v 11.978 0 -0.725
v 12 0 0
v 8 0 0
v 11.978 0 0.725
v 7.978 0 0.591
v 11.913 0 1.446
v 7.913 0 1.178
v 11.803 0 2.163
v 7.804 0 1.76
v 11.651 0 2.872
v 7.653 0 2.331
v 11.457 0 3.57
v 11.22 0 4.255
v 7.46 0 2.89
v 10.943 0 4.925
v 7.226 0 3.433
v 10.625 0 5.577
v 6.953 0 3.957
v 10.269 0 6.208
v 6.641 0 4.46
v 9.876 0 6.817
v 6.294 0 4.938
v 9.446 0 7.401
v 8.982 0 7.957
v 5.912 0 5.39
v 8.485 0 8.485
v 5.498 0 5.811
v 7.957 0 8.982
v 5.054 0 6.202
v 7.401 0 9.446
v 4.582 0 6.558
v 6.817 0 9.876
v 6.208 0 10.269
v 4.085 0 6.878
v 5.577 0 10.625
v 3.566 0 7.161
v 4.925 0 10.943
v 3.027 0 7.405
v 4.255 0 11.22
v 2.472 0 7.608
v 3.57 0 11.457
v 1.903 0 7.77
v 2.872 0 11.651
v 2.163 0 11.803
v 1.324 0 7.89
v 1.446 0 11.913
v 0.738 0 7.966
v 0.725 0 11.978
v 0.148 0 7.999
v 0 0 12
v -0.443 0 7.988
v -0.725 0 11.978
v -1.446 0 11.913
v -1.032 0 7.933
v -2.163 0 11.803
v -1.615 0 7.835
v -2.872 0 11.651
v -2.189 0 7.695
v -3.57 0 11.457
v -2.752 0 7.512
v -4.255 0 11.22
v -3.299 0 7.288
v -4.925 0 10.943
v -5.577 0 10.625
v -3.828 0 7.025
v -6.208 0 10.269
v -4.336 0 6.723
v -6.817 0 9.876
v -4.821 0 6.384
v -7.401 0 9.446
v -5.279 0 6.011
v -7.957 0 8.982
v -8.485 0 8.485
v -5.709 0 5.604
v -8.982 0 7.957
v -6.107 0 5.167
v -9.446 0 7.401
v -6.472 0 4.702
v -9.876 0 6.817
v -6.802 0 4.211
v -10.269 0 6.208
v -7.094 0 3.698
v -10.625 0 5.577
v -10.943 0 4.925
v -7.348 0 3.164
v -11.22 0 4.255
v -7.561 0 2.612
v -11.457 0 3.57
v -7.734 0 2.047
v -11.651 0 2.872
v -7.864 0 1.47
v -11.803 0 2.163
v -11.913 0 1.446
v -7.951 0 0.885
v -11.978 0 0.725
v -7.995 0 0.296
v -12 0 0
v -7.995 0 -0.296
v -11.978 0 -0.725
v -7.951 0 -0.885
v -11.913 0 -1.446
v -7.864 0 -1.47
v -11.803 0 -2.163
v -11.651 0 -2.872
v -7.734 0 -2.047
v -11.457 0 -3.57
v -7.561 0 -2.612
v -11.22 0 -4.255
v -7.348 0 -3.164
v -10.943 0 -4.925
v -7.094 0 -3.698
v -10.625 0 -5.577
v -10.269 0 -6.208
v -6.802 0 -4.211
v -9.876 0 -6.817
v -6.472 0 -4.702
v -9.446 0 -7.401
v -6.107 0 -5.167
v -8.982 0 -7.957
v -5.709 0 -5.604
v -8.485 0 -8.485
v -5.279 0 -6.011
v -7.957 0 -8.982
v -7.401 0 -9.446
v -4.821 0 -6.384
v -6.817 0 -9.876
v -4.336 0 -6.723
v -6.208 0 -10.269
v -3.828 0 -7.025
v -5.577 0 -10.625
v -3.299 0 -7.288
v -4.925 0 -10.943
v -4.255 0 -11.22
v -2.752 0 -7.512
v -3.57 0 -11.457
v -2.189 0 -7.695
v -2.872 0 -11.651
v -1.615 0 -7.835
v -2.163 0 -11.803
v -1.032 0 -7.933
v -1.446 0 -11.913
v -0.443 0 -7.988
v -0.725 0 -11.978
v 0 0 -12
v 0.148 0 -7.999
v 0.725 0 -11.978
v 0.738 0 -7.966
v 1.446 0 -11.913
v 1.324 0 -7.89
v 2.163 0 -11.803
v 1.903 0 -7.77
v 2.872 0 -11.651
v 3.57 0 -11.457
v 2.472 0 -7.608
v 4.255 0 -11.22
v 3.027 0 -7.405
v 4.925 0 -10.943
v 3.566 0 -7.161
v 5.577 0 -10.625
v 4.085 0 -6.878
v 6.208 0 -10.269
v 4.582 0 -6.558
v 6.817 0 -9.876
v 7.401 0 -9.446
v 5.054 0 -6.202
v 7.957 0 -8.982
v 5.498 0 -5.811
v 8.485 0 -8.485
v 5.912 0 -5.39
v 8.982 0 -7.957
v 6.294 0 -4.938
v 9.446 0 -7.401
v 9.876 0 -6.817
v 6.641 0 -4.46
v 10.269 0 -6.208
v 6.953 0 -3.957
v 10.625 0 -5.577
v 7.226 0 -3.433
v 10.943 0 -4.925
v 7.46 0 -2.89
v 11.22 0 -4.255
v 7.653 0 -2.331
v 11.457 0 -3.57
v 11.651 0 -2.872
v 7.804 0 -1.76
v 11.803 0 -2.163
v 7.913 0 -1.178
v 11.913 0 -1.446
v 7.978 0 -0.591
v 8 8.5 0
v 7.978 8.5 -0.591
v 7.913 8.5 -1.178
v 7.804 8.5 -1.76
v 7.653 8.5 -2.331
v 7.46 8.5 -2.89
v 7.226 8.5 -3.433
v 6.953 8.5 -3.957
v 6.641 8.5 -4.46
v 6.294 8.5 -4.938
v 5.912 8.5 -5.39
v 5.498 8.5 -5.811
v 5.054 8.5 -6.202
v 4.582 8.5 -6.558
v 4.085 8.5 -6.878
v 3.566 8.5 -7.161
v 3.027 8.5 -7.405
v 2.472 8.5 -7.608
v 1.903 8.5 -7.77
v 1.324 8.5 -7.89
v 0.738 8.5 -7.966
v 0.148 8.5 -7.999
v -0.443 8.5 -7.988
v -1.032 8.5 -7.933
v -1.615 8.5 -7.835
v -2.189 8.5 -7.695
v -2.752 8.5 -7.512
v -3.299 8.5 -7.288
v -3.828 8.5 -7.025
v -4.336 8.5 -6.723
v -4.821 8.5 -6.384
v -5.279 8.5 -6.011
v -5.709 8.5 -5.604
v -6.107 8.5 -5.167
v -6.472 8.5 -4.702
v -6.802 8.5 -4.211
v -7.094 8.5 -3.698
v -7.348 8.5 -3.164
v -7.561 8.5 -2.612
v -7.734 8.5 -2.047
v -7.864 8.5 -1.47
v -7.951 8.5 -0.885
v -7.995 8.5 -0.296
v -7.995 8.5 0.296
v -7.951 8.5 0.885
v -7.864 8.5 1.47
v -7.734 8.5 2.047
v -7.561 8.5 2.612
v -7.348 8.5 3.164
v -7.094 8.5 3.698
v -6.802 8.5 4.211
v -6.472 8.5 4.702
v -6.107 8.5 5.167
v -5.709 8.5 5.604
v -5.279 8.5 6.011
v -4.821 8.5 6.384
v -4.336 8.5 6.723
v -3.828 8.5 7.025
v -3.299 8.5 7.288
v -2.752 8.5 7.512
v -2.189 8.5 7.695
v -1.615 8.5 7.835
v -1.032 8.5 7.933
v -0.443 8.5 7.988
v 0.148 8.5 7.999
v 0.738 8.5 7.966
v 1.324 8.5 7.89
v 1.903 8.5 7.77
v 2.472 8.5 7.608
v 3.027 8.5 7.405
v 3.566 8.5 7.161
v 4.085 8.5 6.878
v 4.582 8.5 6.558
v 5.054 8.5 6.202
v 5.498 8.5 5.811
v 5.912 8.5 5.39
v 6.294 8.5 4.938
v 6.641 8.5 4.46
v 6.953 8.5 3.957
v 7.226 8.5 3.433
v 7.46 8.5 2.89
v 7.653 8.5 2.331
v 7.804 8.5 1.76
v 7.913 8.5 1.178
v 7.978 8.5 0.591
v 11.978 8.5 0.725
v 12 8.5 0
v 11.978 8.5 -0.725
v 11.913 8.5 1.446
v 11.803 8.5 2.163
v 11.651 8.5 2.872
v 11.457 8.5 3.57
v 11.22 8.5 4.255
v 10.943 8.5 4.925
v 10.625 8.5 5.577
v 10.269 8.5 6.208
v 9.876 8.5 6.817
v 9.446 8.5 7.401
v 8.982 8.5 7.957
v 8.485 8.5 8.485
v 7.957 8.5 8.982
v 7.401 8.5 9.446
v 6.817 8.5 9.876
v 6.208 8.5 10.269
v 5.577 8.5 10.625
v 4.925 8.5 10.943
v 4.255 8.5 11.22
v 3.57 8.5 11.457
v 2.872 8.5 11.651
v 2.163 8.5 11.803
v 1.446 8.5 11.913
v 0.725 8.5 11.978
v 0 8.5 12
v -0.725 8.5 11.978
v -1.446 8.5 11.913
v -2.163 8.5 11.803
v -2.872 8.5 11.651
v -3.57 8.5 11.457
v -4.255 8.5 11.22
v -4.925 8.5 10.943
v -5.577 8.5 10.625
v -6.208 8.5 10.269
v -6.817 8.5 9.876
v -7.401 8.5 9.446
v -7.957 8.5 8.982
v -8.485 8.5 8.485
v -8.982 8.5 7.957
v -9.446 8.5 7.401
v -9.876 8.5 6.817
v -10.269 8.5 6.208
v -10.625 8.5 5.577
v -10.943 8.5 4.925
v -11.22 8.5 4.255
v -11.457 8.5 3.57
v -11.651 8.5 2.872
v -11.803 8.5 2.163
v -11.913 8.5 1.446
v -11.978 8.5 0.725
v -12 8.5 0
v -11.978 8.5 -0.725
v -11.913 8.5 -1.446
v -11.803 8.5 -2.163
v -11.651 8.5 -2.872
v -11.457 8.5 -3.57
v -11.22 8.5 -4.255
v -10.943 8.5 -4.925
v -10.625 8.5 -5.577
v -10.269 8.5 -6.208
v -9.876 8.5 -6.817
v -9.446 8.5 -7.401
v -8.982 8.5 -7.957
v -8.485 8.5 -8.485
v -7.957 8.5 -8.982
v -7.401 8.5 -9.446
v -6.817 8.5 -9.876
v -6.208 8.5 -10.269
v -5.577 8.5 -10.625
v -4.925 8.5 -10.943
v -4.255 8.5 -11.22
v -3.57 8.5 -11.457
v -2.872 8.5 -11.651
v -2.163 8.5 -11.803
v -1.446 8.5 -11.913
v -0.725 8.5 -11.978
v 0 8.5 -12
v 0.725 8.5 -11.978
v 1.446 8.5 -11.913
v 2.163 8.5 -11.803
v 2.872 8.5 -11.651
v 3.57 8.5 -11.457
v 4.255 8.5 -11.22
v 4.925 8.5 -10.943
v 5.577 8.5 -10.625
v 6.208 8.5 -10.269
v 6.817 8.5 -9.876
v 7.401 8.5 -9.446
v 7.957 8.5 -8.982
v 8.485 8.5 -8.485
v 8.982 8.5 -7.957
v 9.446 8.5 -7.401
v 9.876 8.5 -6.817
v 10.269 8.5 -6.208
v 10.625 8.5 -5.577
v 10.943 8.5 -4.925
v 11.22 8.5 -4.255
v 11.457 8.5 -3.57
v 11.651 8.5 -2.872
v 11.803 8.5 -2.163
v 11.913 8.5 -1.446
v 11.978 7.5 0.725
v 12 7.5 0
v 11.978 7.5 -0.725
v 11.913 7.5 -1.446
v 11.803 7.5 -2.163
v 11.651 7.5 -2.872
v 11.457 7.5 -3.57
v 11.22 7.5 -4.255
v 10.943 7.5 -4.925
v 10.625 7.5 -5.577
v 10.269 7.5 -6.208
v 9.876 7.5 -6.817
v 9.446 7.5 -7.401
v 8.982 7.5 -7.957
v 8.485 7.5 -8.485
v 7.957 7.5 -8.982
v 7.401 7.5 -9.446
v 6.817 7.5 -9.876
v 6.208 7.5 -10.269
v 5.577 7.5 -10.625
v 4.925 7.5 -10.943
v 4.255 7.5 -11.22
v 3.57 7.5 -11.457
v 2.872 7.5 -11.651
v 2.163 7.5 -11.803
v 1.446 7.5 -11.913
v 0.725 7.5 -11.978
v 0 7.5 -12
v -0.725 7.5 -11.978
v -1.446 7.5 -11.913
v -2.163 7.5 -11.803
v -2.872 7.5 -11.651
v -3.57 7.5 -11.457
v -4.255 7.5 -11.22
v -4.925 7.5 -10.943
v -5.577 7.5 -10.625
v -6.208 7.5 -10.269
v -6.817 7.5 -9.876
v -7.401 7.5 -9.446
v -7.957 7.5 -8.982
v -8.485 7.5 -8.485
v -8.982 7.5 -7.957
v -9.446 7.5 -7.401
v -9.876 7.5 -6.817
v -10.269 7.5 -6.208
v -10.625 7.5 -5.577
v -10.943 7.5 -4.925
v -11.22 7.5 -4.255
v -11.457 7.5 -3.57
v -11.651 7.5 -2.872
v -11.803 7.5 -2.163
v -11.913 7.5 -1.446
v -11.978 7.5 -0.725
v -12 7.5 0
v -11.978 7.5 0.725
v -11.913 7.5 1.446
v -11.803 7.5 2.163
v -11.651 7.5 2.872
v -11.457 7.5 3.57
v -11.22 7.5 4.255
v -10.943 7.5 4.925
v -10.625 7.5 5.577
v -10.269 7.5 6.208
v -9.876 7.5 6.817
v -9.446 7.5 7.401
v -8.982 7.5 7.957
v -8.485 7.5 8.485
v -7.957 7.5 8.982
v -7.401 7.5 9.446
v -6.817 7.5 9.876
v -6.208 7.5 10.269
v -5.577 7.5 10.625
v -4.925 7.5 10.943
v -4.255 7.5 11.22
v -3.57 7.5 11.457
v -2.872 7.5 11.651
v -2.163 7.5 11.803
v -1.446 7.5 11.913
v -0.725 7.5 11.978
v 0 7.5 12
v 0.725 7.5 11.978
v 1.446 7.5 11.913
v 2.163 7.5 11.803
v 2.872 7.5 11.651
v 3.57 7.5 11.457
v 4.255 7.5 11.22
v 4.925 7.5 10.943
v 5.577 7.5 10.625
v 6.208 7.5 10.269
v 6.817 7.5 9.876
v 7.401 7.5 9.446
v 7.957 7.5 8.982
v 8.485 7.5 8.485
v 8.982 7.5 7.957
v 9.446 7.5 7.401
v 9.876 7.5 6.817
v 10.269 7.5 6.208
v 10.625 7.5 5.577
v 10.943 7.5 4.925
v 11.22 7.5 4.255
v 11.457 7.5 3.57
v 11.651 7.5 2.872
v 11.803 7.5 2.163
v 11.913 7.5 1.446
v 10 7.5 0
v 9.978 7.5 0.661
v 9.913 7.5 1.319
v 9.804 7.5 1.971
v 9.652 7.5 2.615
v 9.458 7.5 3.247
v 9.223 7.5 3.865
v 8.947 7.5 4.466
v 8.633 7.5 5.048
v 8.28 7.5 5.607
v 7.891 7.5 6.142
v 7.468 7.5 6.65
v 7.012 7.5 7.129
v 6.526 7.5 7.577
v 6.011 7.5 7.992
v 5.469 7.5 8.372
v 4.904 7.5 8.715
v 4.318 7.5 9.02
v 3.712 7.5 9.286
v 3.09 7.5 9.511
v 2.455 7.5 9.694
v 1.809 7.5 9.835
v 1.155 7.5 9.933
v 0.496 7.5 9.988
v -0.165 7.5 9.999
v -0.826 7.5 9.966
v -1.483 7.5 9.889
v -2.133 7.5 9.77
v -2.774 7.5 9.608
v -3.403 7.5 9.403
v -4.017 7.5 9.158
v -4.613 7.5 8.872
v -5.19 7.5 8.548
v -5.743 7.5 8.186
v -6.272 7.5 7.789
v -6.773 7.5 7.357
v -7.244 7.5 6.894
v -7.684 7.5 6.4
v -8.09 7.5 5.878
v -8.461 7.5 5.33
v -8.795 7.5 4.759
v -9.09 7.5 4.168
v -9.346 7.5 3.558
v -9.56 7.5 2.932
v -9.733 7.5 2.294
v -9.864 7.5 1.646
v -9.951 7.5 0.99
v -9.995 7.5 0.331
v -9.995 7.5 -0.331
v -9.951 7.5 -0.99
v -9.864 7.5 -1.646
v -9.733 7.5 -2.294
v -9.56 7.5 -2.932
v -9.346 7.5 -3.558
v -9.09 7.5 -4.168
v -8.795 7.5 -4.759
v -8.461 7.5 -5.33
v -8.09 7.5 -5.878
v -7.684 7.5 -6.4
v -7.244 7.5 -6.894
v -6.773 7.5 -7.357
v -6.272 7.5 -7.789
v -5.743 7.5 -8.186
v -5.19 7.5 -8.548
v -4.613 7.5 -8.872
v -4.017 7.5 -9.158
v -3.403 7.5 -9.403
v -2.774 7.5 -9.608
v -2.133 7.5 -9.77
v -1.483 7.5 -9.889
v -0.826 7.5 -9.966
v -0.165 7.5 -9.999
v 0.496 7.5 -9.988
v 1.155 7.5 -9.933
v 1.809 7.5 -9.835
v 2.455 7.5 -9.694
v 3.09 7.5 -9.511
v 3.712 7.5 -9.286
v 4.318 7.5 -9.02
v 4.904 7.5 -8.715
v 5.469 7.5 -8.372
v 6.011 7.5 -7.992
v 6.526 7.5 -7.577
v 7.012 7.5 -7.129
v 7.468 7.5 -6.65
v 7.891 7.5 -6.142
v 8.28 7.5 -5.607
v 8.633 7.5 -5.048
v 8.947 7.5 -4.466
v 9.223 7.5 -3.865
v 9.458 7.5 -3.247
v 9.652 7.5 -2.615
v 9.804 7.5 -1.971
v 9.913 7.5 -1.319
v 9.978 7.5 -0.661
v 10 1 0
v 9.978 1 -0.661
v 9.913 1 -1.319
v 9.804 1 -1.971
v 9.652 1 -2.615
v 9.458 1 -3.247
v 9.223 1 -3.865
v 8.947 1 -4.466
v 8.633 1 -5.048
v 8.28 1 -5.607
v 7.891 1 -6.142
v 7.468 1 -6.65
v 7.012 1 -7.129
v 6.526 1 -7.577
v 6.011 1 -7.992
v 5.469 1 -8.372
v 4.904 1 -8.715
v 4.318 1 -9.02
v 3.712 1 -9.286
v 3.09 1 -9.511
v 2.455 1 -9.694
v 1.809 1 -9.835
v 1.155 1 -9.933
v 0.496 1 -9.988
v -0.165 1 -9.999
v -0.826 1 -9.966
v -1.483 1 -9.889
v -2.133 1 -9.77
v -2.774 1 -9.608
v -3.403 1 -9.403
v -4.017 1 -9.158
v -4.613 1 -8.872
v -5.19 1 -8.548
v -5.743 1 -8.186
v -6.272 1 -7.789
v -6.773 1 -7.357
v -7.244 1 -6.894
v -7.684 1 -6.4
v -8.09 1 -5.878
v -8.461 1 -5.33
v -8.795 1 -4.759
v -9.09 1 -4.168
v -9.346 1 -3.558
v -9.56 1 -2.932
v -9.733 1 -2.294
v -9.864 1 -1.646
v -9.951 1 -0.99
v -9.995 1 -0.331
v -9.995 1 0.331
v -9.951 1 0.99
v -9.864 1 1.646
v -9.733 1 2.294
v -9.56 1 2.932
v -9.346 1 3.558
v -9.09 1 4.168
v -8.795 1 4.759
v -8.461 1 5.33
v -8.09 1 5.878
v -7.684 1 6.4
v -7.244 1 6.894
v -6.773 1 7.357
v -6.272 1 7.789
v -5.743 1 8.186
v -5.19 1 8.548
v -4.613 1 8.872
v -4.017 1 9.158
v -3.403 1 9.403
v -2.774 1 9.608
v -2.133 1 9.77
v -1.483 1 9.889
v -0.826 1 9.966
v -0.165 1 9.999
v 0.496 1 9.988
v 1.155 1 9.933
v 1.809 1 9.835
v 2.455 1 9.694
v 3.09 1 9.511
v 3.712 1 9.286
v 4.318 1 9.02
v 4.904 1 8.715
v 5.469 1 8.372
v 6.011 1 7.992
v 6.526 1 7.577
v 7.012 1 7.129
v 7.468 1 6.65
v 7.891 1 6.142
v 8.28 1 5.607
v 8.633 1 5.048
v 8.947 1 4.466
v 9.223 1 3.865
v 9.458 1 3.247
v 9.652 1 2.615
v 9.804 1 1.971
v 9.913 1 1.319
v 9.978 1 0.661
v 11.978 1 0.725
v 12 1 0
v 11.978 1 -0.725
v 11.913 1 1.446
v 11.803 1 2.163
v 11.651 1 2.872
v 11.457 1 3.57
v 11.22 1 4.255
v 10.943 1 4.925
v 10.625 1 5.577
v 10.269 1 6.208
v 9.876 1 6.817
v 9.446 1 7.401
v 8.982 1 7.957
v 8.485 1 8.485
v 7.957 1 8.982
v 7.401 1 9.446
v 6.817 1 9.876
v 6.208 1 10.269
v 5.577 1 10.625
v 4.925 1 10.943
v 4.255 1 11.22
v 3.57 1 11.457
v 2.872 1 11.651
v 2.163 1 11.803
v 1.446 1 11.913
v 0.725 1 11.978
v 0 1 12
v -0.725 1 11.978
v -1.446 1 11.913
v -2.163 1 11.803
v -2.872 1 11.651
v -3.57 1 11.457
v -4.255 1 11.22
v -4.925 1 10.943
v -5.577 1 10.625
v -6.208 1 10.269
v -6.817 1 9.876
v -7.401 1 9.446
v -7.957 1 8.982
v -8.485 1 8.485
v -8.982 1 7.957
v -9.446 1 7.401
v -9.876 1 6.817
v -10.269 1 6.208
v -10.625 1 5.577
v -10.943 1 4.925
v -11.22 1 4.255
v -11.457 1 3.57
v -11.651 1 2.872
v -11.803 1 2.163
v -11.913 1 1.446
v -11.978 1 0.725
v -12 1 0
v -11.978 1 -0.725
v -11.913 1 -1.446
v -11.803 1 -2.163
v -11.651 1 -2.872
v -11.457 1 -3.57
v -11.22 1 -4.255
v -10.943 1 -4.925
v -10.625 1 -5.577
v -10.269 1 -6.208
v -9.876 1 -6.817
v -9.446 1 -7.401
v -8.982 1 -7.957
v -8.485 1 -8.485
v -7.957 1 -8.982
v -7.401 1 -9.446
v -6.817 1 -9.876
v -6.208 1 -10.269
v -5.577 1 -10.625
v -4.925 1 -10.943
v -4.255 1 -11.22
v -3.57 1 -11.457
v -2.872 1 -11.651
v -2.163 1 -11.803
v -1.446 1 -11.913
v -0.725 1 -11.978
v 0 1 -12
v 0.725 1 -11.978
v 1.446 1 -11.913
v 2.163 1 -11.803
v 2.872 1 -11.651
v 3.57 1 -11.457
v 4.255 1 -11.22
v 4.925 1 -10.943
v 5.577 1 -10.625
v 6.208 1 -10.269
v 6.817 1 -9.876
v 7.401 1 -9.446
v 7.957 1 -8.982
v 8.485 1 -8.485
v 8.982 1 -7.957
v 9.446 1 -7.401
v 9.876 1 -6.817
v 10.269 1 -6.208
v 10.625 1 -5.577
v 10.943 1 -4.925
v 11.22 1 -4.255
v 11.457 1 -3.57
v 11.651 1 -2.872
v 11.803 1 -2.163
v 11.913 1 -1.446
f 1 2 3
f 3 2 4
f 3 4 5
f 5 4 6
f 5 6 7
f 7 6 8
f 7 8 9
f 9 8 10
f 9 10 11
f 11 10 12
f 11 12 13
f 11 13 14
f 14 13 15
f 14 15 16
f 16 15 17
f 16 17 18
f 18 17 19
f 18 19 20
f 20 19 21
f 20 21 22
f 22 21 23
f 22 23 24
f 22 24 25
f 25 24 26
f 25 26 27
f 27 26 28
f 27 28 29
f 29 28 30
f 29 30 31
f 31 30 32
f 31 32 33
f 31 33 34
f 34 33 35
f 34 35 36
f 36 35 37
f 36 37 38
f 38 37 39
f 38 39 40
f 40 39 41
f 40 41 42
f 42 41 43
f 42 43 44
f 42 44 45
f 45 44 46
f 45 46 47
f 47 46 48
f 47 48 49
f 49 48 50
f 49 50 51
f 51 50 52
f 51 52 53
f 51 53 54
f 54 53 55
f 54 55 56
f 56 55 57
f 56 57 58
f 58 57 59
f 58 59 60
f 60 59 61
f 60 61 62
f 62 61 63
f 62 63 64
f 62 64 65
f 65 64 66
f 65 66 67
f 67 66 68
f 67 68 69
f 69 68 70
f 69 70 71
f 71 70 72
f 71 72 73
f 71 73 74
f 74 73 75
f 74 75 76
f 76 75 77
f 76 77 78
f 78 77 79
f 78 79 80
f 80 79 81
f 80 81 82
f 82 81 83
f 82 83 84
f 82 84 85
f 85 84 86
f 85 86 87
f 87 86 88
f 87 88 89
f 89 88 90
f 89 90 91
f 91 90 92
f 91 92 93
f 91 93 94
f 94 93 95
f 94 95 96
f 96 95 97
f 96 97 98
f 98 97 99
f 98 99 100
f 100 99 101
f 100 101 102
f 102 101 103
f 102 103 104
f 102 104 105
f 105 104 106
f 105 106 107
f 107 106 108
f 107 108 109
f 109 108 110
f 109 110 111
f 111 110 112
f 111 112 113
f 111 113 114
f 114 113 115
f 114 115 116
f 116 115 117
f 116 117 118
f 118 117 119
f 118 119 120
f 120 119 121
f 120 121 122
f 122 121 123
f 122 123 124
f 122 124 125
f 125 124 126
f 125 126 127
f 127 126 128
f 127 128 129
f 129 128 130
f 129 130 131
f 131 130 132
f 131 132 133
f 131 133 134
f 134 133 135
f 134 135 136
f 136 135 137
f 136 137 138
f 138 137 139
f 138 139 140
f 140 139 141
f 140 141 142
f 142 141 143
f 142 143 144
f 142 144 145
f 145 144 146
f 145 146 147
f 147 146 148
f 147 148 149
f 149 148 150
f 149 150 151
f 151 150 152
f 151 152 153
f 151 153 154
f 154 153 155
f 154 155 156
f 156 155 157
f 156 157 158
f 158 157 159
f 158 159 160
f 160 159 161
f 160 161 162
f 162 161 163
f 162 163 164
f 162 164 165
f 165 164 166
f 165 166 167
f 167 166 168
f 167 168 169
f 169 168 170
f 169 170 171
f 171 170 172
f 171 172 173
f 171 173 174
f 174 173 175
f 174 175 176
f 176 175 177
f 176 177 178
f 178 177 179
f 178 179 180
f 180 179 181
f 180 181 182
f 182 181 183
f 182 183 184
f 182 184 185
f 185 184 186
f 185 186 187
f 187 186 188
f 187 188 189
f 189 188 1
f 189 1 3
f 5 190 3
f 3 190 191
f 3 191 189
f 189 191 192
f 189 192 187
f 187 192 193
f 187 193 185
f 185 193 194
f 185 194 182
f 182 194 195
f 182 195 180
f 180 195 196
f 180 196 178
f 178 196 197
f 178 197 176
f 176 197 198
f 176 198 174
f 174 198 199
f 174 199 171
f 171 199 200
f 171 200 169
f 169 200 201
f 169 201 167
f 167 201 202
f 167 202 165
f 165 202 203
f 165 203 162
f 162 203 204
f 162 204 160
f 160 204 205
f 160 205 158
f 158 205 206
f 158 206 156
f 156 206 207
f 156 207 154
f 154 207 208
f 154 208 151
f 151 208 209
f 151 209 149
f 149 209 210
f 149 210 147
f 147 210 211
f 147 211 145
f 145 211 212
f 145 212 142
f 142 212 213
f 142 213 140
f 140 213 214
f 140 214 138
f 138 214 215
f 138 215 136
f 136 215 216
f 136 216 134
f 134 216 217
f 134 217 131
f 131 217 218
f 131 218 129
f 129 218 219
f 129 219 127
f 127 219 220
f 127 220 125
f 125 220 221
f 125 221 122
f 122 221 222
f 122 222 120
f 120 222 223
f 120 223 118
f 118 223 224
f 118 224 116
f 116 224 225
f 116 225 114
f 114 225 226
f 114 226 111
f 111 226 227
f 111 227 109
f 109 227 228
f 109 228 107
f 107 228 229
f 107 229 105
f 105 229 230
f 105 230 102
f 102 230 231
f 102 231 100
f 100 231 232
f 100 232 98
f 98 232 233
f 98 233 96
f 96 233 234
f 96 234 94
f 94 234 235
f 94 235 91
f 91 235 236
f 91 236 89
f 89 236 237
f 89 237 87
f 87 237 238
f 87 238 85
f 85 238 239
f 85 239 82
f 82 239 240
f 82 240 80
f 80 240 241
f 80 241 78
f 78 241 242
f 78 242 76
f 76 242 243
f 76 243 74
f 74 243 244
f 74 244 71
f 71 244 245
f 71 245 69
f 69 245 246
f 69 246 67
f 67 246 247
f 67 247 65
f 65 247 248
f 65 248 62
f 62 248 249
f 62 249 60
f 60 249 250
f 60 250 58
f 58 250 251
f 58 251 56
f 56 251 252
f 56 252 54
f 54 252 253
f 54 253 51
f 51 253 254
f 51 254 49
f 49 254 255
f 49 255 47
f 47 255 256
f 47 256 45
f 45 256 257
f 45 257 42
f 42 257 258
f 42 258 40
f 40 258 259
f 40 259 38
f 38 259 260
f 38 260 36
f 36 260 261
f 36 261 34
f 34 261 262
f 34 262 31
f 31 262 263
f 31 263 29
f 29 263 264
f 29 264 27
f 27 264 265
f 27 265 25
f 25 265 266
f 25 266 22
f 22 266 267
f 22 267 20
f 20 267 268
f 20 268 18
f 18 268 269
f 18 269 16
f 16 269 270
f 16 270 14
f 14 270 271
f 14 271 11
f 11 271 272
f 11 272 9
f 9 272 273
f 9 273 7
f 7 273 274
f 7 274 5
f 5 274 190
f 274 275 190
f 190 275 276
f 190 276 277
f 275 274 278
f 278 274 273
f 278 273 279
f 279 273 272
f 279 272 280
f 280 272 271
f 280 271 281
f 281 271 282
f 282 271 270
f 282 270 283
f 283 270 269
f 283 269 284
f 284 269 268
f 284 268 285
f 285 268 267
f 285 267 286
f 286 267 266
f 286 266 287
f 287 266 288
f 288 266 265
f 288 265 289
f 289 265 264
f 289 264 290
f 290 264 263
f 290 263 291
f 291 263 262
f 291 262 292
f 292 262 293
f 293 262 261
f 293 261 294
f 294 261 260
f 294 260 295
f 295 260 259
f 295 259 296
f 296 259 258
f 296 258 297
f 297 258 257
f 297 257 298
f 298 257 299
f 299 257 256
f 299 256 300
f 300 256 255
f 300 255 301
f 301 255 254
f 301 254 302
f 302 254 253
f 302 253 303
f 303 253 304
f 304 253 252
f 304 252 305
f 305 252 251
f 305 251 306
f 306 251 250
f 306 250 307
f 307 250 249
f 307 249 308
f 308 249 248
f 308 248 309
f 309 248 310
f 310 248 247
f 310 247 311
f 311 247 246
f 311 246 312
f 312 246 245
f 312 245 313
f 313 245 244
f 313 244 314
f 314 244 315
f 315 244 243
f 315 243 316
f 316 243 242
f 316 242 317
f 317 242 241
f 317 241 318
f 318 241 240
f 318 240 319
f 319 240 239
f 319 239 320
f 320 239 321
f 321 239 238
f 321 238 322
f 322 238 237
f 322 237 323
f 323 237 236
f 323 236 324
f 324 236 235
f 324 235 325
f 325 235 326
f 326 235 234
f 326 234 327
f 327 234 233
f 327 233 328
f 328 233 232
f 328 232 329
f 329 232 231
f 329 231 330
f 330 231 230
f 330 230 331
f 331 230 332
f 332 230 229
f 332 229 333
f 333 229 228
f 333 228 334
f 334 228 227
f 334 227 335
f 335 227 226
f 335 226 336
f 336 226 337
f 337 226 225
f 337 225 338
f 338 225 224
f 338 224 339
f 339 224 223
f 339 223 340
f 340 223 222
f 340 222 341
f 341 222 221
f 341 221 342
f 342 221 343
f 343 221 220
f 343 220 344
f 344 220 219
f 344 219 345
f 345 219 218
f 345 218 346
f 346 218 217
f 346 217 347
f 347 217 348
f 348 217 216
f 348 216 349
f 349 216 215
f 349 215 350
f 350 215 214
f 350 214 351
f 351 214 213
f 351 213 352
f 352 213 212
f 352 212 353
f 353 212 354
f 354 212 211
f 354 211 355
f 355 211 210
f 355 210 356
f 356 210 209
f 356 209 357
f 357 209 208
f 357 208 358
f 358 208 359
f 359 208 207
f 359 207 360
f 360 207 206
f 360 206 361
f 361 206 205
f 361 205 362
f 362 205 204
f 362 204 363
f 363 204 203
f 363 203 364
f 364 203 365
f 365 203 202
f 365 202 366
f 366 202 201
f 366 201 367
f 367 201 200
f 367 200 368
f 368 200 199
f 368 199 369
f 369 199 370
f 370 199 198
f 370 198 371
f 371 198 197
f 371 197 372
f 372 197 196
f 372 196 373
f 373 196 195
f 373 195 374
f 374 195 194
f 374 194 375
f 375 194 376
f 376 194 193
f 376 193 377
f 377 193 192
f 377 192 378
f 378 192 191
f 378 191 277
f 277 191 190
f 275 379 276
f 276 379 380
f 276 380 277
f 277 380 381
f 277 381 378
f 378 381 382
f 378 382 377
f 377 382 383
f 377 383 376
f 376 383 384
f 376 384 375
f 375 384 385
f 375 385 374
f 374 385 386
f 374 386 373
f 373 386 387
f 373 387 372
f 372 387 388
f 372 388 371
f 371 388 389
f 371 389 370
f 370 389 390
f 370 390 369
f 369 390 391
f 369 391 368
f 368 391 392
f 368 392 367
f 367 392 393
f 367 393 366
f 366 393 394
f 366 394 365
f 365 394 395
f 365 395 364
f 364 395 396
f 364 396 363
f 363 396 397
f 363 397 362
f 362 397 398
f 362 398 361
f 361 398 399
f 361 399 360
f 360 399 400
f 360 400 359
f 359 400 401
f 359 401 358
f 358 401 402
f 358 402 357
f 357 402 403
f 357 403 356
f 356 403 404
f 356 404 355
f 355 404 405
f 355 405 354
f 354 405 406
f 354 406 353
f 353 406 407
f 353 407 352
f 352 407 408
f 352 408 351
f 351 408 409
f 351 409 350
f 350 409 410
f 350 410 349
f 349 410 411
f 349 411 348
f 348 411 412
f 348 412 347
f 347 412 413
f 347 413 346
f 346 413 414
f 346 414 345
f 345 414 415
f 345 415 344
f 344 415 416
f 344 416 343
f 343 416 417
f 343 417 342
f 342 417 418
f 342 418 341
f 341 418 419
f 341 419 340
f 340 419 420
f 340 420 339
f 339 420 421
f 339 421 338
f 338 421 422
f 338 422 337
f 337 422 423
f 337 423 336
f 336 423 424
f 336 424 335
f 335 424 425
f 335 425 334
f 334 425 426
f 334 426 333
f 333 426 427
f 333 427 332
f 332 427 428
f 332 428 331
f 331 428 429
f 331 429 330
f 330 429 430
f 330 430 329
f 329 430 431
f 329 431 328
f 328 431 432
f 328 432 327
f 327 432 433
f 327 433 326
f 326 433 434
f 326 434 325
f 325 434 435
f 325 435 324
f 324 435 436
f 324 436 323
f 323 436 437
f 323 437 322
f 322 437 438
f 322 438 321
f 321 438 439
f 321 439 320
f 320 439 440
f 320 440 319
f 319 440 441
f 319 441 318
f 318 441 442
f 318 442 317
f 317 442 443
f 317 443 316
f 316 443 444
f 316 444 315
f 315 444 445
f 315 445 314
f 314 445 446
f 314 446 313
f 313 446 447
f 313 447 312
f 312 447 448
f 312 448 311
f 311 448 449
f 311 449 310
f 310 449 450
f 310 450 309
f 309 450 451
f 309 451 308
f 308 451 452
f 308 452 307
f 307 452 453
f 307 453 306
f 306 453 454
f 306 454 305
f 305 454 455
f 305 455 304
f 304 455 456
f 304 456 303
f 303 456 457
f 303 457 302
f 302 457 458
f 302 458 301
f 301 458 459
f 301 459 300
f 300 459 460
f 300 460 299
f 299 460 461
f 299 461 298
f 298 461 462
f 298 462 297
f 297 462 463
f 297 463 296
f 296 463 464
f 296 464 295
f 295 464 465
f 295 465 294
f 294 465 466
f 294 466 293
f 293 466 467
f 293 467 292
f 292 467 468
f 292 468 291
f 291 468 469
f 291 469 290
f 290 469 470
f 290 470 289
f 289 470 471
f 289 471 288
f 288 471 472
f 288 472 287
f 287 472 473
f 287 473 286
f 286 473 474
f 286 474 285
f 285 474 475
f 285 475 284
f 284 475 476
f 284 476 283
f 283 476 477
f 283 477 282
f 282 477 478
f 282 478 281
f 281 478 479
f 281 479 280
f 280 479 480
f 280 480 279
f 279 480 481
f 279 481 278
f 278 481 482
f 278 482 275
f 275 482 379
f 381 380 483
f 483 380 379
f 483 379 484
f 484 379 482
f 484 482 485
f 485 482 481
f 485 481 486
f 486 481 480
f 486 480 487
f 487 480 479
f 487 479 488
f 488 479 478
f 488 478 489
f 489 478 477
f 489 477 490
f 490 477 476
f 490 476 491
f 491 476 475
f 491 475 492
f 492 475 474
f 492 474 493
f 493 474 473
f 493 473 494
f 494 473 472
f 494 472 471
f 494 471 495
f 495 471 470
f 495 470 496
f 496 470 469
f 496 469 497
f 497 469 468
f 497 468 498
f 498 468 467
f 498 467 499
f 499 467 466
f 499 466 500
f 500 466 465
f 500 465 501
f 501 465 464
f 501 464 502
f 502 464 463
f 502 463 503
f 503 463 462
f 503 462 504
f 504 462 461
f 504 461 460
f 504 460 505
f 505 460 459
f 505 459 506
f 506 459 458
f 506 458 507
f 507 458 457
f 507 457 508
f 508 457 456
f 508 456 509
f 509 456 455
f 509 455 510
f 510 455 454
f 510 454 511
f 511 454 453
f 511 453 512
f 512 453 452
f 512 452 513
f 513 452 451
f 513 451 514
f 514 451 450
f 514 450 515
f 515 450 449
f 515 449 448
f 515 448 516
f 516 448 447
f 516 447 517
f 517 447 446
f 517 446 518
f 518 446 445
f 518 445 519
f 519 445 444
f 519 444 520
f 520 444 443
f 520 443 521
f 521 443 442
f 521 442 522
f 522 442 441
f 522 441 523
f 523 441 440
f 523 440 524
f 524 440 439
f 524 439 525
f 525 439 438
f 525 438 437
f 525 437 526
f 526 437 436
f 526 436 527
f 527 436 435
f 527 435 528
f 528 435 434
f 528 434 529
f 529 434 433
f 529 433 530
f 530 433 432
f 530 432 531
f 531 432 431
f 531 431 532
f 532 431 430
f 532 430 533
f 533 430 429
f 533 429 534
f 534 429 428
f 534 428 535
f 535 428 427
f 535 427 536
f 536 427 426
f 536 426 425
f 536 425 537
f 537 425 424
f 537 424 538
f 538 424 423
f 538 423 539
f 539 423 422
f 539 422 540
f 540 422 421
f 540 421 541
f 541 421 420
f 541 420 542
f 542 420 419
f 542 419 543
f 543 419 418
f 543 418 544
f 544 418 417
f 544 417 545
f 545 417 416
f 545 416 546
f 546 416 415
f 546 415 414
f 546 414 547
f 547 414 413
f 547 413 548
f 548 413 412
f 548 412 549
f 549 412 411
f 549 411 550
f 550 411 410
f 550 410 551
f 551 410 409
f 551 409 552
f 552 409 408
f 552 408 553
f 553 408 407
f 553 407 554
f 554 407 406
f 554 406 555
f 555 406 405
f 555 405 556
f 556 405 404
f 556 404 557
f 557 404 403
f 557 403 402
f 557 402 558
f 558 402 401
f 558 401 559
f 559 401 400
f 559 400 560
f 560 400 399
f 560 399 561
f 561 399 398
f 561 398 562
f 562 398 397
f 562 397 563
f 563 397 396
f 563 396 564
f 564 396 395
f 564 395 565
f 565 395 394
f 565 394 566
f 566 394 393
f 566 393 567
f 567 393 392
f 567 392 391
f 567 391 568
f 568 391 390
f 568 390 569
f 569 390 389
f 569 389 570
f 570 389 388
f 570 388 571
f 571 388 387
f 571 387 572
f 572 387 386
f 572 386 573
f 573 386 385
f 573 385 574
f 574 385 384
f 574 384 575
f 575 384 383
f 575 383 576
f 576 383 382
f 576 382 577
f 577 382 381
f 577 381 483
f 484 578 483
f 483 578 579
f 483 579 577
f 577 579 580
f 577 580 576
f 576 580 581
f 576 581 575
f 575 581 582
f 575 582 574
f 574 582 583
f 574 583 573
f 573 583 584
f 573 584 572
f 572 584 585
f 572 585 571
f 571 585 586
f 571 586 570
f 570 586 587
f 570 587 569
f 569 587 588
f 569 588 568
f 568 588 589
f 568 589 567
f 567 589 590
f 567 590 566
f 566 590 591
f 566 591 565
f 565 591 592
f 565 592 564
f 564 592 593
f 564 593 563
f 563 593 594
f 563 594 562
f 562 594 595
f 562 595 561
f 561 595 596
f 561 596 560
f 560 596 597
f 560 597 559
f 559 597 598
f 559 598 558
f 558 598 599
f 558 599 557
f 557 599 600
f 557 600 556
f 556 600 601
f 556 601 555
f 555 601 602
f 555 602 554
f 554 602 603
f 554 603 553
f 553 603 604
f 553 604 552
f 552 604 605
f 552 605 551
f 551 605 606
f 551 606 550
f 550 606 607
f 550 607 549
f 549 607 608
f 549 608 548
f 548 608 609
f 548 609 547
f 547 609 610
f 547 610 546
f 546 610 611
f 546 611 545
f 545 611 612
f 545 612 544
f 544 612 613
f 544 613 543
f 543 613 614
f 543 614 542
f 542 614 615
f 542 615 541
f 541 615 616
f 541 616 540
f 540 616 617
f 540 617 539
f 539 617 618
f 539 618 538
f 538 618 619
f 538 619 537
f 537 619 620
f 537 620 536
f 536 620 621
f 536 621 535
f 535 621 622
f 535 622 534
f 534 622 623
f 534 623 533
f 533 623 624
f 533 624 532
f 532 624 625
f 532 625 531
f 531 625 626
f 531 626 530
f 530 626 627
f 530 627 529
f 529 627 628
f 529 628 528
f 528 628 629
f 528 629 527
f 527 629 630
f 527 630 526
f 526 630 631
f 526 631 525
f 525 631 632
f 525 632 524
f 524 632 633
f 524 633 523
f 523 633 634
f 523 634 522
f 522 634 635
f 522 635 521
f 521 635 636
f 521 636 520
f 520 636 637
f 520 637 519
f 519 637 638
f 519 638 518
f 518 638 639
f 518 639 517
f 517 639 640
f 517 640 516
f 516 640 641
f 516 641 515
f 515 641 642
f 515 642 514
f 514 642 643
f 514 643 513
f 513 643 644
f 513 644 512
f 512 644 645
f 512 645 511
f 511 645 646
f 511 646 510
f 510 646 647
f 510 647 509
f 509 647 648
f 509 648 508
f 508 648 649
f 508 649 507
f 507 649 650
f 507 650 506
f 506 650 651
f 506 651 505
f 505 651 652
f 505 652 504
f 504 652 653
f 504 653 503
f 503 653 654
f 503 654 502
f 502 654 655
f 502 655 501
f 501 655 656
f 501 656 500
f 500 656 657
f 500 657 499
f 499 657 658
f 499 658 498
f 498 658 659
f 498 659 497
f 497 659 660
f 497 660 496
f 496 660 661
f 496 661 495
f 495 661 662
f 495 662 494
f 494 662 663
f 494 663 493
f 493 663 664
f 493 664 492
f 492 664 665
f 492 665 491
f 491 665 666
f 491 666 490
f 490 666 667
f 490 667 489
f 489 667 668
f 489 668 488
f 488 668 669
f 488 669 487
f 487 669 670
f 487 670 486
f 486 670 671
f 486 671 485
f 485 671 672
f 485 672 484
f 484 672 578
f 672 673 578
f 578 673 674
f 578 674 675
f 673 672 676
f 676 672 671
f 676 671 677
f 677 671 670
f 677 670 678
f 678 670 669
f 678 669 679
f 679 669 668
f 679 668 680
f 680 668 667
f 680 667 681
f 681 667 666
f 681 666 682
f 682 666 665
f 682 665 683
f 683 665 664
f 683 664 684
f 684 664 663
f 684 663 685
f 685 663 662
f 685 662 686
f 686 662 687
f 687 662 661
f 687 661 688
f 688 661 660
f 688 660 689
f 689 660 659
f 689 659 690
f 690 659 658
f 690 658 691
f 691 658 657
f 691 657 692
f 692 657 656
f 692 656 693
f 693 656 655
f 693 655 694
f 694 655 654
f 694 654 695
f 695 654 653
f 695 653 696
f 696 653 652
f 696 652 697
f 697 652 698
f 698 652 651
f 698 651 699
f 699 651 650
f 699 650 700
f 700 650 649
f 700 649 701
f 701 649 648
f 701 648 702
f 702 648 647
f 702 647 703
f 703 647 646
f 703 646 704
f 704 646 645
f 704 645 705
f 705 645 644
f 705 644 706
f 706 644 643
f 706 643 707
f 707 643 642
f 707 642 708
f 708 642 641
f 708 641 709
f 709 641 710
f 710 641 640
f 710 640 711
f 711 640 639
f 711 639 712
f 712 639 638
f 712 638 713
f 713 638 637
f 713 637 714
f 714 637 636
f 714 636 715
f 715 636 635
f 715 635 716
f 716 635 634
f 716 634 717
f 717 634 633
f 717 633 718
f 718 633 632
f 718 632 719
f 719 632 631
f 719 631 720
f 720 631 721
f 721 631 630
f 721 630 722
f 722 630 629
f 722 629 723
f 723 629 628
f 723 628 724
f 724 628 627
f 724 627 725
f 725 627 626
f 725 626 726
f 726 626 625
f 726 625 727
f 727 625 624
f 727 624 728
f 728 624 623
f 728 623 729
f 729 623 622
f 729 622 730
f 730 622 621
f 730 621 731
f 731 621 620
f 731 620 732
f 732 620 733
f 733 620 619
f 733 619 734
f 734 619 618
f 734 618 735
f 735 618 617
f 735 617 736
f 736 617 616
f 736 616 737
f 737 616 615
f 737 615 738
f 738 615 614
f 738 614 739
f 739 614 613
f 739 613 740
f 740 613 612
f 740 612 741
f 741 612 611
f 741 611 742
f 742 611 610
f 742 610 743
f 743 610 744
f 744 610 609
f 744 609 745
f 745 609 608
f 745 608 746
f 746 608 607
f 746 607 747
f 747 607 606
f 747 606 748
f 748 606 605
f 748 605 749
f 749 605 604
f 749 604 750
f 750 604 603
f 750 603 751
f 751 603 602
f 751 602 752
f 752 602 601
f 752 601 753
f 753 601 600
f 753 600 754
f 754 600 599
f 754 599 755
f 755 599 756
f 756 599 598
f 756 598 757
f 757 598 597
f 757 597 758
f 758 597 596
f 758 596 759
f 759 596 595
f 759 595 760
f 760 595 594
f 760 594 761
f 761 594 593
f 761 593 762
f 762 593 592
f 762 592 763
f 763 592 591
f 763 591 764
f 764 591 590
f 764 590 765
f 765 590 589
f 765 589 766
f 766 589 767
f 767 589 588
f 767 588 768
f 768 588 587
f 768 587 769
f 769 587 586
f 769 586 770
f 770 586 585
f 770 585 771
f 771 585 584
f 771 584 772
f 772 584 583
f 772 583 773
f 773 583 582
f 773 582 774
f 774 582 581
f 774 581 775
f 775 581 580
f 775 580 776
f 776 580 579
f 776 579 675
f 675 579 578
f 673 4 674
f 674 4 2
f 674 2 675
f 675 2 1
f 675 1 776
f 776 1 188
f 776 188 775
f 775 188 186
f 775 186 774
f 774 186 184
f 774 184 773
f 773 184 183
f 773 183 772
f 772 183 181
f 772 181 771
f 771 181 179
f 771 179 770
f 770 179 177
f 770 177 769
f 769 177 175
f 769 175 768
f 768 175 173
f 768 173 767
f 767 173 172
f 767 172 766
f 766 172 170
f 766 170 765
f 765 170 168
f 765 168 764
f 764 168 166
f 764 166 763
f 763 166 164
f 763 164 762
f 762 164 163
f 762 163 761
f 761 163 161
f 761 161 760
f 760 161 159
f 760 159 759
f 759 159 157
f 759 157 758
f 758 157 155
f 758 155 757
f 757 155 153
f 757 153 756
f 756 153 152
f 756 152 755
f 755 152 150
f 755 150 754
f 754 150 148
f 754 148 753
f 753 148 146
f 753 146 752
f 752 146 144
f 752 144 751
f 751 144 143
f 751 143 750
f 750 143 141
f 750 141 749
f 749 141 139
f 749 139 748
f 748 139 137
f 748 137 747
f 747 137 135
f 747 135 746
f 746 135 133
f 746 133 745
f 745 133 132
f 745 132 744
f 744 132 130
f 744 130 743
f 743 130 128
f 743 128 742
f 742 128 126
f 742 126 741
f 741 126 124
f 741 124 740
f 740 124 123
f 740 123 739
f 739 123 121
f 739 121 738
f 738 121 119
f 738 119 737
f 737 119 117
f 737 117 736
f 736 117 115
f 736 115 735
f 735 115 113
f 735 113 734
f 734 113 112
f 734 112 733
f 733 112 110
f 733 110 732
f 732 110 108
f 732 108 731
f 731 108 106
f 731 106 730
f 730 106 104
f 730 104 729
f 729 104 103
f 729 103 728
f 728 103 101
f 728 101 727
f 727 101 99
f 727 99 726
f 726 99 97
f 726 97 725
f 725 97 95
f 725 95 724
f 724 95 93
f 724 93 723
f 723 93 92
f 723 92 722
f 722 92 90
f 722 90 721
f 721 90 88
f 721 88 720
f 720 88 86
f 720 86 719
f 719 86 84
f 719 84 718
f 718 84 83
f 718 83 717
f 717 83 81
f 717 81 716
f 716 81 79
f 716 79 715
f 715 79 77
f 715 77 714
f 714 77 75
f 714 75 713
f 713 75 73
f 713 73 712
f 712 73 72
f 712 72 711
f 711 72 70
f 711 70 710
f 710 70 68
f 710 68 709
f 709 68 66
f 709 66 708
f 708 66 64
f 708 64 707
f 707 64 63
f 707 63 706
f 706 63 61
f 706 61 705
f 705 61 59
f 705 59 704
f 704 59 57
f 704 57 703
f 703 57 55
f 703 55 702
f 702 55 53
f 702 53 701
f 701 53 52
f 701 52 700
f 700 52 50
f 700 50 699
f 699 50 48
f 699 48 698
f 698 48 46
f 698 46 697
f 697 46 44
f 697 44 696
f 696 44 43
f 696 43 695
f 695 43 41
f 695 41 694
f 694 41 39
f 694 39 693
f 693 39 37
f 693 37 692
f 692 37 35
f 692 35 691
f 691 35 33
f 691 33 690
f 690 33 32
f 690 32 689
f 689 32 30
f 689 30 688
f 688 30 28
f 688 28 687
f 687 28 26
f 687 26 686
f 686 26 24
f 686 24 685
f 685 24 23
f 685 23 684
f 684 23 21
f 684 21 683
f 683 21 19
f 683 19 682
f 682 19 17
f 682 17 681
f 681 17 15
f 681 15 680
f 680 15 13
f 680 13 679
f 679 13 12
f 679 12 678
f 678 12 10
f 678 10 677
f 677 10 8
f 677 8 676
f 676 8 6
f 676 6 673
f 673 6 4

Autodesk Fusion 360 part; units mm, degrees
sketch "Sketch1" plane through (0, 0, 0) normal (0, 0, 1) x (1, 0, 0)
  line L0 (0, 0) -> (8, 0) construction
  line L1 (8, 0) -> (8, 8.5)
  line L2 (8, 8.5) -> (12, 8.5)
  line L3 (12, 8.5) -> (12, 7.5)
  line L4 (12, 7.5) -> (10, 7.5)
  line L5 (10, 7.5) -> (10, 1)
  line L6 (10, 1) -> (12, 1)
  line L7 (12, 1) -> (12, 0)
  line L8 (12, 0) -> (8, 0)
  dimension "d1" = 1
  dimension "d2" = 1
  dimension "d3" = 6.5
  dimension "d4" = 8
  dimension "d5" = 2
  dimension "d6" = 2
revolve "Revolve1" add sketch "Sketch1" angle 360 about axis through (0, 1.75, 0) along (0, 1, 0)
